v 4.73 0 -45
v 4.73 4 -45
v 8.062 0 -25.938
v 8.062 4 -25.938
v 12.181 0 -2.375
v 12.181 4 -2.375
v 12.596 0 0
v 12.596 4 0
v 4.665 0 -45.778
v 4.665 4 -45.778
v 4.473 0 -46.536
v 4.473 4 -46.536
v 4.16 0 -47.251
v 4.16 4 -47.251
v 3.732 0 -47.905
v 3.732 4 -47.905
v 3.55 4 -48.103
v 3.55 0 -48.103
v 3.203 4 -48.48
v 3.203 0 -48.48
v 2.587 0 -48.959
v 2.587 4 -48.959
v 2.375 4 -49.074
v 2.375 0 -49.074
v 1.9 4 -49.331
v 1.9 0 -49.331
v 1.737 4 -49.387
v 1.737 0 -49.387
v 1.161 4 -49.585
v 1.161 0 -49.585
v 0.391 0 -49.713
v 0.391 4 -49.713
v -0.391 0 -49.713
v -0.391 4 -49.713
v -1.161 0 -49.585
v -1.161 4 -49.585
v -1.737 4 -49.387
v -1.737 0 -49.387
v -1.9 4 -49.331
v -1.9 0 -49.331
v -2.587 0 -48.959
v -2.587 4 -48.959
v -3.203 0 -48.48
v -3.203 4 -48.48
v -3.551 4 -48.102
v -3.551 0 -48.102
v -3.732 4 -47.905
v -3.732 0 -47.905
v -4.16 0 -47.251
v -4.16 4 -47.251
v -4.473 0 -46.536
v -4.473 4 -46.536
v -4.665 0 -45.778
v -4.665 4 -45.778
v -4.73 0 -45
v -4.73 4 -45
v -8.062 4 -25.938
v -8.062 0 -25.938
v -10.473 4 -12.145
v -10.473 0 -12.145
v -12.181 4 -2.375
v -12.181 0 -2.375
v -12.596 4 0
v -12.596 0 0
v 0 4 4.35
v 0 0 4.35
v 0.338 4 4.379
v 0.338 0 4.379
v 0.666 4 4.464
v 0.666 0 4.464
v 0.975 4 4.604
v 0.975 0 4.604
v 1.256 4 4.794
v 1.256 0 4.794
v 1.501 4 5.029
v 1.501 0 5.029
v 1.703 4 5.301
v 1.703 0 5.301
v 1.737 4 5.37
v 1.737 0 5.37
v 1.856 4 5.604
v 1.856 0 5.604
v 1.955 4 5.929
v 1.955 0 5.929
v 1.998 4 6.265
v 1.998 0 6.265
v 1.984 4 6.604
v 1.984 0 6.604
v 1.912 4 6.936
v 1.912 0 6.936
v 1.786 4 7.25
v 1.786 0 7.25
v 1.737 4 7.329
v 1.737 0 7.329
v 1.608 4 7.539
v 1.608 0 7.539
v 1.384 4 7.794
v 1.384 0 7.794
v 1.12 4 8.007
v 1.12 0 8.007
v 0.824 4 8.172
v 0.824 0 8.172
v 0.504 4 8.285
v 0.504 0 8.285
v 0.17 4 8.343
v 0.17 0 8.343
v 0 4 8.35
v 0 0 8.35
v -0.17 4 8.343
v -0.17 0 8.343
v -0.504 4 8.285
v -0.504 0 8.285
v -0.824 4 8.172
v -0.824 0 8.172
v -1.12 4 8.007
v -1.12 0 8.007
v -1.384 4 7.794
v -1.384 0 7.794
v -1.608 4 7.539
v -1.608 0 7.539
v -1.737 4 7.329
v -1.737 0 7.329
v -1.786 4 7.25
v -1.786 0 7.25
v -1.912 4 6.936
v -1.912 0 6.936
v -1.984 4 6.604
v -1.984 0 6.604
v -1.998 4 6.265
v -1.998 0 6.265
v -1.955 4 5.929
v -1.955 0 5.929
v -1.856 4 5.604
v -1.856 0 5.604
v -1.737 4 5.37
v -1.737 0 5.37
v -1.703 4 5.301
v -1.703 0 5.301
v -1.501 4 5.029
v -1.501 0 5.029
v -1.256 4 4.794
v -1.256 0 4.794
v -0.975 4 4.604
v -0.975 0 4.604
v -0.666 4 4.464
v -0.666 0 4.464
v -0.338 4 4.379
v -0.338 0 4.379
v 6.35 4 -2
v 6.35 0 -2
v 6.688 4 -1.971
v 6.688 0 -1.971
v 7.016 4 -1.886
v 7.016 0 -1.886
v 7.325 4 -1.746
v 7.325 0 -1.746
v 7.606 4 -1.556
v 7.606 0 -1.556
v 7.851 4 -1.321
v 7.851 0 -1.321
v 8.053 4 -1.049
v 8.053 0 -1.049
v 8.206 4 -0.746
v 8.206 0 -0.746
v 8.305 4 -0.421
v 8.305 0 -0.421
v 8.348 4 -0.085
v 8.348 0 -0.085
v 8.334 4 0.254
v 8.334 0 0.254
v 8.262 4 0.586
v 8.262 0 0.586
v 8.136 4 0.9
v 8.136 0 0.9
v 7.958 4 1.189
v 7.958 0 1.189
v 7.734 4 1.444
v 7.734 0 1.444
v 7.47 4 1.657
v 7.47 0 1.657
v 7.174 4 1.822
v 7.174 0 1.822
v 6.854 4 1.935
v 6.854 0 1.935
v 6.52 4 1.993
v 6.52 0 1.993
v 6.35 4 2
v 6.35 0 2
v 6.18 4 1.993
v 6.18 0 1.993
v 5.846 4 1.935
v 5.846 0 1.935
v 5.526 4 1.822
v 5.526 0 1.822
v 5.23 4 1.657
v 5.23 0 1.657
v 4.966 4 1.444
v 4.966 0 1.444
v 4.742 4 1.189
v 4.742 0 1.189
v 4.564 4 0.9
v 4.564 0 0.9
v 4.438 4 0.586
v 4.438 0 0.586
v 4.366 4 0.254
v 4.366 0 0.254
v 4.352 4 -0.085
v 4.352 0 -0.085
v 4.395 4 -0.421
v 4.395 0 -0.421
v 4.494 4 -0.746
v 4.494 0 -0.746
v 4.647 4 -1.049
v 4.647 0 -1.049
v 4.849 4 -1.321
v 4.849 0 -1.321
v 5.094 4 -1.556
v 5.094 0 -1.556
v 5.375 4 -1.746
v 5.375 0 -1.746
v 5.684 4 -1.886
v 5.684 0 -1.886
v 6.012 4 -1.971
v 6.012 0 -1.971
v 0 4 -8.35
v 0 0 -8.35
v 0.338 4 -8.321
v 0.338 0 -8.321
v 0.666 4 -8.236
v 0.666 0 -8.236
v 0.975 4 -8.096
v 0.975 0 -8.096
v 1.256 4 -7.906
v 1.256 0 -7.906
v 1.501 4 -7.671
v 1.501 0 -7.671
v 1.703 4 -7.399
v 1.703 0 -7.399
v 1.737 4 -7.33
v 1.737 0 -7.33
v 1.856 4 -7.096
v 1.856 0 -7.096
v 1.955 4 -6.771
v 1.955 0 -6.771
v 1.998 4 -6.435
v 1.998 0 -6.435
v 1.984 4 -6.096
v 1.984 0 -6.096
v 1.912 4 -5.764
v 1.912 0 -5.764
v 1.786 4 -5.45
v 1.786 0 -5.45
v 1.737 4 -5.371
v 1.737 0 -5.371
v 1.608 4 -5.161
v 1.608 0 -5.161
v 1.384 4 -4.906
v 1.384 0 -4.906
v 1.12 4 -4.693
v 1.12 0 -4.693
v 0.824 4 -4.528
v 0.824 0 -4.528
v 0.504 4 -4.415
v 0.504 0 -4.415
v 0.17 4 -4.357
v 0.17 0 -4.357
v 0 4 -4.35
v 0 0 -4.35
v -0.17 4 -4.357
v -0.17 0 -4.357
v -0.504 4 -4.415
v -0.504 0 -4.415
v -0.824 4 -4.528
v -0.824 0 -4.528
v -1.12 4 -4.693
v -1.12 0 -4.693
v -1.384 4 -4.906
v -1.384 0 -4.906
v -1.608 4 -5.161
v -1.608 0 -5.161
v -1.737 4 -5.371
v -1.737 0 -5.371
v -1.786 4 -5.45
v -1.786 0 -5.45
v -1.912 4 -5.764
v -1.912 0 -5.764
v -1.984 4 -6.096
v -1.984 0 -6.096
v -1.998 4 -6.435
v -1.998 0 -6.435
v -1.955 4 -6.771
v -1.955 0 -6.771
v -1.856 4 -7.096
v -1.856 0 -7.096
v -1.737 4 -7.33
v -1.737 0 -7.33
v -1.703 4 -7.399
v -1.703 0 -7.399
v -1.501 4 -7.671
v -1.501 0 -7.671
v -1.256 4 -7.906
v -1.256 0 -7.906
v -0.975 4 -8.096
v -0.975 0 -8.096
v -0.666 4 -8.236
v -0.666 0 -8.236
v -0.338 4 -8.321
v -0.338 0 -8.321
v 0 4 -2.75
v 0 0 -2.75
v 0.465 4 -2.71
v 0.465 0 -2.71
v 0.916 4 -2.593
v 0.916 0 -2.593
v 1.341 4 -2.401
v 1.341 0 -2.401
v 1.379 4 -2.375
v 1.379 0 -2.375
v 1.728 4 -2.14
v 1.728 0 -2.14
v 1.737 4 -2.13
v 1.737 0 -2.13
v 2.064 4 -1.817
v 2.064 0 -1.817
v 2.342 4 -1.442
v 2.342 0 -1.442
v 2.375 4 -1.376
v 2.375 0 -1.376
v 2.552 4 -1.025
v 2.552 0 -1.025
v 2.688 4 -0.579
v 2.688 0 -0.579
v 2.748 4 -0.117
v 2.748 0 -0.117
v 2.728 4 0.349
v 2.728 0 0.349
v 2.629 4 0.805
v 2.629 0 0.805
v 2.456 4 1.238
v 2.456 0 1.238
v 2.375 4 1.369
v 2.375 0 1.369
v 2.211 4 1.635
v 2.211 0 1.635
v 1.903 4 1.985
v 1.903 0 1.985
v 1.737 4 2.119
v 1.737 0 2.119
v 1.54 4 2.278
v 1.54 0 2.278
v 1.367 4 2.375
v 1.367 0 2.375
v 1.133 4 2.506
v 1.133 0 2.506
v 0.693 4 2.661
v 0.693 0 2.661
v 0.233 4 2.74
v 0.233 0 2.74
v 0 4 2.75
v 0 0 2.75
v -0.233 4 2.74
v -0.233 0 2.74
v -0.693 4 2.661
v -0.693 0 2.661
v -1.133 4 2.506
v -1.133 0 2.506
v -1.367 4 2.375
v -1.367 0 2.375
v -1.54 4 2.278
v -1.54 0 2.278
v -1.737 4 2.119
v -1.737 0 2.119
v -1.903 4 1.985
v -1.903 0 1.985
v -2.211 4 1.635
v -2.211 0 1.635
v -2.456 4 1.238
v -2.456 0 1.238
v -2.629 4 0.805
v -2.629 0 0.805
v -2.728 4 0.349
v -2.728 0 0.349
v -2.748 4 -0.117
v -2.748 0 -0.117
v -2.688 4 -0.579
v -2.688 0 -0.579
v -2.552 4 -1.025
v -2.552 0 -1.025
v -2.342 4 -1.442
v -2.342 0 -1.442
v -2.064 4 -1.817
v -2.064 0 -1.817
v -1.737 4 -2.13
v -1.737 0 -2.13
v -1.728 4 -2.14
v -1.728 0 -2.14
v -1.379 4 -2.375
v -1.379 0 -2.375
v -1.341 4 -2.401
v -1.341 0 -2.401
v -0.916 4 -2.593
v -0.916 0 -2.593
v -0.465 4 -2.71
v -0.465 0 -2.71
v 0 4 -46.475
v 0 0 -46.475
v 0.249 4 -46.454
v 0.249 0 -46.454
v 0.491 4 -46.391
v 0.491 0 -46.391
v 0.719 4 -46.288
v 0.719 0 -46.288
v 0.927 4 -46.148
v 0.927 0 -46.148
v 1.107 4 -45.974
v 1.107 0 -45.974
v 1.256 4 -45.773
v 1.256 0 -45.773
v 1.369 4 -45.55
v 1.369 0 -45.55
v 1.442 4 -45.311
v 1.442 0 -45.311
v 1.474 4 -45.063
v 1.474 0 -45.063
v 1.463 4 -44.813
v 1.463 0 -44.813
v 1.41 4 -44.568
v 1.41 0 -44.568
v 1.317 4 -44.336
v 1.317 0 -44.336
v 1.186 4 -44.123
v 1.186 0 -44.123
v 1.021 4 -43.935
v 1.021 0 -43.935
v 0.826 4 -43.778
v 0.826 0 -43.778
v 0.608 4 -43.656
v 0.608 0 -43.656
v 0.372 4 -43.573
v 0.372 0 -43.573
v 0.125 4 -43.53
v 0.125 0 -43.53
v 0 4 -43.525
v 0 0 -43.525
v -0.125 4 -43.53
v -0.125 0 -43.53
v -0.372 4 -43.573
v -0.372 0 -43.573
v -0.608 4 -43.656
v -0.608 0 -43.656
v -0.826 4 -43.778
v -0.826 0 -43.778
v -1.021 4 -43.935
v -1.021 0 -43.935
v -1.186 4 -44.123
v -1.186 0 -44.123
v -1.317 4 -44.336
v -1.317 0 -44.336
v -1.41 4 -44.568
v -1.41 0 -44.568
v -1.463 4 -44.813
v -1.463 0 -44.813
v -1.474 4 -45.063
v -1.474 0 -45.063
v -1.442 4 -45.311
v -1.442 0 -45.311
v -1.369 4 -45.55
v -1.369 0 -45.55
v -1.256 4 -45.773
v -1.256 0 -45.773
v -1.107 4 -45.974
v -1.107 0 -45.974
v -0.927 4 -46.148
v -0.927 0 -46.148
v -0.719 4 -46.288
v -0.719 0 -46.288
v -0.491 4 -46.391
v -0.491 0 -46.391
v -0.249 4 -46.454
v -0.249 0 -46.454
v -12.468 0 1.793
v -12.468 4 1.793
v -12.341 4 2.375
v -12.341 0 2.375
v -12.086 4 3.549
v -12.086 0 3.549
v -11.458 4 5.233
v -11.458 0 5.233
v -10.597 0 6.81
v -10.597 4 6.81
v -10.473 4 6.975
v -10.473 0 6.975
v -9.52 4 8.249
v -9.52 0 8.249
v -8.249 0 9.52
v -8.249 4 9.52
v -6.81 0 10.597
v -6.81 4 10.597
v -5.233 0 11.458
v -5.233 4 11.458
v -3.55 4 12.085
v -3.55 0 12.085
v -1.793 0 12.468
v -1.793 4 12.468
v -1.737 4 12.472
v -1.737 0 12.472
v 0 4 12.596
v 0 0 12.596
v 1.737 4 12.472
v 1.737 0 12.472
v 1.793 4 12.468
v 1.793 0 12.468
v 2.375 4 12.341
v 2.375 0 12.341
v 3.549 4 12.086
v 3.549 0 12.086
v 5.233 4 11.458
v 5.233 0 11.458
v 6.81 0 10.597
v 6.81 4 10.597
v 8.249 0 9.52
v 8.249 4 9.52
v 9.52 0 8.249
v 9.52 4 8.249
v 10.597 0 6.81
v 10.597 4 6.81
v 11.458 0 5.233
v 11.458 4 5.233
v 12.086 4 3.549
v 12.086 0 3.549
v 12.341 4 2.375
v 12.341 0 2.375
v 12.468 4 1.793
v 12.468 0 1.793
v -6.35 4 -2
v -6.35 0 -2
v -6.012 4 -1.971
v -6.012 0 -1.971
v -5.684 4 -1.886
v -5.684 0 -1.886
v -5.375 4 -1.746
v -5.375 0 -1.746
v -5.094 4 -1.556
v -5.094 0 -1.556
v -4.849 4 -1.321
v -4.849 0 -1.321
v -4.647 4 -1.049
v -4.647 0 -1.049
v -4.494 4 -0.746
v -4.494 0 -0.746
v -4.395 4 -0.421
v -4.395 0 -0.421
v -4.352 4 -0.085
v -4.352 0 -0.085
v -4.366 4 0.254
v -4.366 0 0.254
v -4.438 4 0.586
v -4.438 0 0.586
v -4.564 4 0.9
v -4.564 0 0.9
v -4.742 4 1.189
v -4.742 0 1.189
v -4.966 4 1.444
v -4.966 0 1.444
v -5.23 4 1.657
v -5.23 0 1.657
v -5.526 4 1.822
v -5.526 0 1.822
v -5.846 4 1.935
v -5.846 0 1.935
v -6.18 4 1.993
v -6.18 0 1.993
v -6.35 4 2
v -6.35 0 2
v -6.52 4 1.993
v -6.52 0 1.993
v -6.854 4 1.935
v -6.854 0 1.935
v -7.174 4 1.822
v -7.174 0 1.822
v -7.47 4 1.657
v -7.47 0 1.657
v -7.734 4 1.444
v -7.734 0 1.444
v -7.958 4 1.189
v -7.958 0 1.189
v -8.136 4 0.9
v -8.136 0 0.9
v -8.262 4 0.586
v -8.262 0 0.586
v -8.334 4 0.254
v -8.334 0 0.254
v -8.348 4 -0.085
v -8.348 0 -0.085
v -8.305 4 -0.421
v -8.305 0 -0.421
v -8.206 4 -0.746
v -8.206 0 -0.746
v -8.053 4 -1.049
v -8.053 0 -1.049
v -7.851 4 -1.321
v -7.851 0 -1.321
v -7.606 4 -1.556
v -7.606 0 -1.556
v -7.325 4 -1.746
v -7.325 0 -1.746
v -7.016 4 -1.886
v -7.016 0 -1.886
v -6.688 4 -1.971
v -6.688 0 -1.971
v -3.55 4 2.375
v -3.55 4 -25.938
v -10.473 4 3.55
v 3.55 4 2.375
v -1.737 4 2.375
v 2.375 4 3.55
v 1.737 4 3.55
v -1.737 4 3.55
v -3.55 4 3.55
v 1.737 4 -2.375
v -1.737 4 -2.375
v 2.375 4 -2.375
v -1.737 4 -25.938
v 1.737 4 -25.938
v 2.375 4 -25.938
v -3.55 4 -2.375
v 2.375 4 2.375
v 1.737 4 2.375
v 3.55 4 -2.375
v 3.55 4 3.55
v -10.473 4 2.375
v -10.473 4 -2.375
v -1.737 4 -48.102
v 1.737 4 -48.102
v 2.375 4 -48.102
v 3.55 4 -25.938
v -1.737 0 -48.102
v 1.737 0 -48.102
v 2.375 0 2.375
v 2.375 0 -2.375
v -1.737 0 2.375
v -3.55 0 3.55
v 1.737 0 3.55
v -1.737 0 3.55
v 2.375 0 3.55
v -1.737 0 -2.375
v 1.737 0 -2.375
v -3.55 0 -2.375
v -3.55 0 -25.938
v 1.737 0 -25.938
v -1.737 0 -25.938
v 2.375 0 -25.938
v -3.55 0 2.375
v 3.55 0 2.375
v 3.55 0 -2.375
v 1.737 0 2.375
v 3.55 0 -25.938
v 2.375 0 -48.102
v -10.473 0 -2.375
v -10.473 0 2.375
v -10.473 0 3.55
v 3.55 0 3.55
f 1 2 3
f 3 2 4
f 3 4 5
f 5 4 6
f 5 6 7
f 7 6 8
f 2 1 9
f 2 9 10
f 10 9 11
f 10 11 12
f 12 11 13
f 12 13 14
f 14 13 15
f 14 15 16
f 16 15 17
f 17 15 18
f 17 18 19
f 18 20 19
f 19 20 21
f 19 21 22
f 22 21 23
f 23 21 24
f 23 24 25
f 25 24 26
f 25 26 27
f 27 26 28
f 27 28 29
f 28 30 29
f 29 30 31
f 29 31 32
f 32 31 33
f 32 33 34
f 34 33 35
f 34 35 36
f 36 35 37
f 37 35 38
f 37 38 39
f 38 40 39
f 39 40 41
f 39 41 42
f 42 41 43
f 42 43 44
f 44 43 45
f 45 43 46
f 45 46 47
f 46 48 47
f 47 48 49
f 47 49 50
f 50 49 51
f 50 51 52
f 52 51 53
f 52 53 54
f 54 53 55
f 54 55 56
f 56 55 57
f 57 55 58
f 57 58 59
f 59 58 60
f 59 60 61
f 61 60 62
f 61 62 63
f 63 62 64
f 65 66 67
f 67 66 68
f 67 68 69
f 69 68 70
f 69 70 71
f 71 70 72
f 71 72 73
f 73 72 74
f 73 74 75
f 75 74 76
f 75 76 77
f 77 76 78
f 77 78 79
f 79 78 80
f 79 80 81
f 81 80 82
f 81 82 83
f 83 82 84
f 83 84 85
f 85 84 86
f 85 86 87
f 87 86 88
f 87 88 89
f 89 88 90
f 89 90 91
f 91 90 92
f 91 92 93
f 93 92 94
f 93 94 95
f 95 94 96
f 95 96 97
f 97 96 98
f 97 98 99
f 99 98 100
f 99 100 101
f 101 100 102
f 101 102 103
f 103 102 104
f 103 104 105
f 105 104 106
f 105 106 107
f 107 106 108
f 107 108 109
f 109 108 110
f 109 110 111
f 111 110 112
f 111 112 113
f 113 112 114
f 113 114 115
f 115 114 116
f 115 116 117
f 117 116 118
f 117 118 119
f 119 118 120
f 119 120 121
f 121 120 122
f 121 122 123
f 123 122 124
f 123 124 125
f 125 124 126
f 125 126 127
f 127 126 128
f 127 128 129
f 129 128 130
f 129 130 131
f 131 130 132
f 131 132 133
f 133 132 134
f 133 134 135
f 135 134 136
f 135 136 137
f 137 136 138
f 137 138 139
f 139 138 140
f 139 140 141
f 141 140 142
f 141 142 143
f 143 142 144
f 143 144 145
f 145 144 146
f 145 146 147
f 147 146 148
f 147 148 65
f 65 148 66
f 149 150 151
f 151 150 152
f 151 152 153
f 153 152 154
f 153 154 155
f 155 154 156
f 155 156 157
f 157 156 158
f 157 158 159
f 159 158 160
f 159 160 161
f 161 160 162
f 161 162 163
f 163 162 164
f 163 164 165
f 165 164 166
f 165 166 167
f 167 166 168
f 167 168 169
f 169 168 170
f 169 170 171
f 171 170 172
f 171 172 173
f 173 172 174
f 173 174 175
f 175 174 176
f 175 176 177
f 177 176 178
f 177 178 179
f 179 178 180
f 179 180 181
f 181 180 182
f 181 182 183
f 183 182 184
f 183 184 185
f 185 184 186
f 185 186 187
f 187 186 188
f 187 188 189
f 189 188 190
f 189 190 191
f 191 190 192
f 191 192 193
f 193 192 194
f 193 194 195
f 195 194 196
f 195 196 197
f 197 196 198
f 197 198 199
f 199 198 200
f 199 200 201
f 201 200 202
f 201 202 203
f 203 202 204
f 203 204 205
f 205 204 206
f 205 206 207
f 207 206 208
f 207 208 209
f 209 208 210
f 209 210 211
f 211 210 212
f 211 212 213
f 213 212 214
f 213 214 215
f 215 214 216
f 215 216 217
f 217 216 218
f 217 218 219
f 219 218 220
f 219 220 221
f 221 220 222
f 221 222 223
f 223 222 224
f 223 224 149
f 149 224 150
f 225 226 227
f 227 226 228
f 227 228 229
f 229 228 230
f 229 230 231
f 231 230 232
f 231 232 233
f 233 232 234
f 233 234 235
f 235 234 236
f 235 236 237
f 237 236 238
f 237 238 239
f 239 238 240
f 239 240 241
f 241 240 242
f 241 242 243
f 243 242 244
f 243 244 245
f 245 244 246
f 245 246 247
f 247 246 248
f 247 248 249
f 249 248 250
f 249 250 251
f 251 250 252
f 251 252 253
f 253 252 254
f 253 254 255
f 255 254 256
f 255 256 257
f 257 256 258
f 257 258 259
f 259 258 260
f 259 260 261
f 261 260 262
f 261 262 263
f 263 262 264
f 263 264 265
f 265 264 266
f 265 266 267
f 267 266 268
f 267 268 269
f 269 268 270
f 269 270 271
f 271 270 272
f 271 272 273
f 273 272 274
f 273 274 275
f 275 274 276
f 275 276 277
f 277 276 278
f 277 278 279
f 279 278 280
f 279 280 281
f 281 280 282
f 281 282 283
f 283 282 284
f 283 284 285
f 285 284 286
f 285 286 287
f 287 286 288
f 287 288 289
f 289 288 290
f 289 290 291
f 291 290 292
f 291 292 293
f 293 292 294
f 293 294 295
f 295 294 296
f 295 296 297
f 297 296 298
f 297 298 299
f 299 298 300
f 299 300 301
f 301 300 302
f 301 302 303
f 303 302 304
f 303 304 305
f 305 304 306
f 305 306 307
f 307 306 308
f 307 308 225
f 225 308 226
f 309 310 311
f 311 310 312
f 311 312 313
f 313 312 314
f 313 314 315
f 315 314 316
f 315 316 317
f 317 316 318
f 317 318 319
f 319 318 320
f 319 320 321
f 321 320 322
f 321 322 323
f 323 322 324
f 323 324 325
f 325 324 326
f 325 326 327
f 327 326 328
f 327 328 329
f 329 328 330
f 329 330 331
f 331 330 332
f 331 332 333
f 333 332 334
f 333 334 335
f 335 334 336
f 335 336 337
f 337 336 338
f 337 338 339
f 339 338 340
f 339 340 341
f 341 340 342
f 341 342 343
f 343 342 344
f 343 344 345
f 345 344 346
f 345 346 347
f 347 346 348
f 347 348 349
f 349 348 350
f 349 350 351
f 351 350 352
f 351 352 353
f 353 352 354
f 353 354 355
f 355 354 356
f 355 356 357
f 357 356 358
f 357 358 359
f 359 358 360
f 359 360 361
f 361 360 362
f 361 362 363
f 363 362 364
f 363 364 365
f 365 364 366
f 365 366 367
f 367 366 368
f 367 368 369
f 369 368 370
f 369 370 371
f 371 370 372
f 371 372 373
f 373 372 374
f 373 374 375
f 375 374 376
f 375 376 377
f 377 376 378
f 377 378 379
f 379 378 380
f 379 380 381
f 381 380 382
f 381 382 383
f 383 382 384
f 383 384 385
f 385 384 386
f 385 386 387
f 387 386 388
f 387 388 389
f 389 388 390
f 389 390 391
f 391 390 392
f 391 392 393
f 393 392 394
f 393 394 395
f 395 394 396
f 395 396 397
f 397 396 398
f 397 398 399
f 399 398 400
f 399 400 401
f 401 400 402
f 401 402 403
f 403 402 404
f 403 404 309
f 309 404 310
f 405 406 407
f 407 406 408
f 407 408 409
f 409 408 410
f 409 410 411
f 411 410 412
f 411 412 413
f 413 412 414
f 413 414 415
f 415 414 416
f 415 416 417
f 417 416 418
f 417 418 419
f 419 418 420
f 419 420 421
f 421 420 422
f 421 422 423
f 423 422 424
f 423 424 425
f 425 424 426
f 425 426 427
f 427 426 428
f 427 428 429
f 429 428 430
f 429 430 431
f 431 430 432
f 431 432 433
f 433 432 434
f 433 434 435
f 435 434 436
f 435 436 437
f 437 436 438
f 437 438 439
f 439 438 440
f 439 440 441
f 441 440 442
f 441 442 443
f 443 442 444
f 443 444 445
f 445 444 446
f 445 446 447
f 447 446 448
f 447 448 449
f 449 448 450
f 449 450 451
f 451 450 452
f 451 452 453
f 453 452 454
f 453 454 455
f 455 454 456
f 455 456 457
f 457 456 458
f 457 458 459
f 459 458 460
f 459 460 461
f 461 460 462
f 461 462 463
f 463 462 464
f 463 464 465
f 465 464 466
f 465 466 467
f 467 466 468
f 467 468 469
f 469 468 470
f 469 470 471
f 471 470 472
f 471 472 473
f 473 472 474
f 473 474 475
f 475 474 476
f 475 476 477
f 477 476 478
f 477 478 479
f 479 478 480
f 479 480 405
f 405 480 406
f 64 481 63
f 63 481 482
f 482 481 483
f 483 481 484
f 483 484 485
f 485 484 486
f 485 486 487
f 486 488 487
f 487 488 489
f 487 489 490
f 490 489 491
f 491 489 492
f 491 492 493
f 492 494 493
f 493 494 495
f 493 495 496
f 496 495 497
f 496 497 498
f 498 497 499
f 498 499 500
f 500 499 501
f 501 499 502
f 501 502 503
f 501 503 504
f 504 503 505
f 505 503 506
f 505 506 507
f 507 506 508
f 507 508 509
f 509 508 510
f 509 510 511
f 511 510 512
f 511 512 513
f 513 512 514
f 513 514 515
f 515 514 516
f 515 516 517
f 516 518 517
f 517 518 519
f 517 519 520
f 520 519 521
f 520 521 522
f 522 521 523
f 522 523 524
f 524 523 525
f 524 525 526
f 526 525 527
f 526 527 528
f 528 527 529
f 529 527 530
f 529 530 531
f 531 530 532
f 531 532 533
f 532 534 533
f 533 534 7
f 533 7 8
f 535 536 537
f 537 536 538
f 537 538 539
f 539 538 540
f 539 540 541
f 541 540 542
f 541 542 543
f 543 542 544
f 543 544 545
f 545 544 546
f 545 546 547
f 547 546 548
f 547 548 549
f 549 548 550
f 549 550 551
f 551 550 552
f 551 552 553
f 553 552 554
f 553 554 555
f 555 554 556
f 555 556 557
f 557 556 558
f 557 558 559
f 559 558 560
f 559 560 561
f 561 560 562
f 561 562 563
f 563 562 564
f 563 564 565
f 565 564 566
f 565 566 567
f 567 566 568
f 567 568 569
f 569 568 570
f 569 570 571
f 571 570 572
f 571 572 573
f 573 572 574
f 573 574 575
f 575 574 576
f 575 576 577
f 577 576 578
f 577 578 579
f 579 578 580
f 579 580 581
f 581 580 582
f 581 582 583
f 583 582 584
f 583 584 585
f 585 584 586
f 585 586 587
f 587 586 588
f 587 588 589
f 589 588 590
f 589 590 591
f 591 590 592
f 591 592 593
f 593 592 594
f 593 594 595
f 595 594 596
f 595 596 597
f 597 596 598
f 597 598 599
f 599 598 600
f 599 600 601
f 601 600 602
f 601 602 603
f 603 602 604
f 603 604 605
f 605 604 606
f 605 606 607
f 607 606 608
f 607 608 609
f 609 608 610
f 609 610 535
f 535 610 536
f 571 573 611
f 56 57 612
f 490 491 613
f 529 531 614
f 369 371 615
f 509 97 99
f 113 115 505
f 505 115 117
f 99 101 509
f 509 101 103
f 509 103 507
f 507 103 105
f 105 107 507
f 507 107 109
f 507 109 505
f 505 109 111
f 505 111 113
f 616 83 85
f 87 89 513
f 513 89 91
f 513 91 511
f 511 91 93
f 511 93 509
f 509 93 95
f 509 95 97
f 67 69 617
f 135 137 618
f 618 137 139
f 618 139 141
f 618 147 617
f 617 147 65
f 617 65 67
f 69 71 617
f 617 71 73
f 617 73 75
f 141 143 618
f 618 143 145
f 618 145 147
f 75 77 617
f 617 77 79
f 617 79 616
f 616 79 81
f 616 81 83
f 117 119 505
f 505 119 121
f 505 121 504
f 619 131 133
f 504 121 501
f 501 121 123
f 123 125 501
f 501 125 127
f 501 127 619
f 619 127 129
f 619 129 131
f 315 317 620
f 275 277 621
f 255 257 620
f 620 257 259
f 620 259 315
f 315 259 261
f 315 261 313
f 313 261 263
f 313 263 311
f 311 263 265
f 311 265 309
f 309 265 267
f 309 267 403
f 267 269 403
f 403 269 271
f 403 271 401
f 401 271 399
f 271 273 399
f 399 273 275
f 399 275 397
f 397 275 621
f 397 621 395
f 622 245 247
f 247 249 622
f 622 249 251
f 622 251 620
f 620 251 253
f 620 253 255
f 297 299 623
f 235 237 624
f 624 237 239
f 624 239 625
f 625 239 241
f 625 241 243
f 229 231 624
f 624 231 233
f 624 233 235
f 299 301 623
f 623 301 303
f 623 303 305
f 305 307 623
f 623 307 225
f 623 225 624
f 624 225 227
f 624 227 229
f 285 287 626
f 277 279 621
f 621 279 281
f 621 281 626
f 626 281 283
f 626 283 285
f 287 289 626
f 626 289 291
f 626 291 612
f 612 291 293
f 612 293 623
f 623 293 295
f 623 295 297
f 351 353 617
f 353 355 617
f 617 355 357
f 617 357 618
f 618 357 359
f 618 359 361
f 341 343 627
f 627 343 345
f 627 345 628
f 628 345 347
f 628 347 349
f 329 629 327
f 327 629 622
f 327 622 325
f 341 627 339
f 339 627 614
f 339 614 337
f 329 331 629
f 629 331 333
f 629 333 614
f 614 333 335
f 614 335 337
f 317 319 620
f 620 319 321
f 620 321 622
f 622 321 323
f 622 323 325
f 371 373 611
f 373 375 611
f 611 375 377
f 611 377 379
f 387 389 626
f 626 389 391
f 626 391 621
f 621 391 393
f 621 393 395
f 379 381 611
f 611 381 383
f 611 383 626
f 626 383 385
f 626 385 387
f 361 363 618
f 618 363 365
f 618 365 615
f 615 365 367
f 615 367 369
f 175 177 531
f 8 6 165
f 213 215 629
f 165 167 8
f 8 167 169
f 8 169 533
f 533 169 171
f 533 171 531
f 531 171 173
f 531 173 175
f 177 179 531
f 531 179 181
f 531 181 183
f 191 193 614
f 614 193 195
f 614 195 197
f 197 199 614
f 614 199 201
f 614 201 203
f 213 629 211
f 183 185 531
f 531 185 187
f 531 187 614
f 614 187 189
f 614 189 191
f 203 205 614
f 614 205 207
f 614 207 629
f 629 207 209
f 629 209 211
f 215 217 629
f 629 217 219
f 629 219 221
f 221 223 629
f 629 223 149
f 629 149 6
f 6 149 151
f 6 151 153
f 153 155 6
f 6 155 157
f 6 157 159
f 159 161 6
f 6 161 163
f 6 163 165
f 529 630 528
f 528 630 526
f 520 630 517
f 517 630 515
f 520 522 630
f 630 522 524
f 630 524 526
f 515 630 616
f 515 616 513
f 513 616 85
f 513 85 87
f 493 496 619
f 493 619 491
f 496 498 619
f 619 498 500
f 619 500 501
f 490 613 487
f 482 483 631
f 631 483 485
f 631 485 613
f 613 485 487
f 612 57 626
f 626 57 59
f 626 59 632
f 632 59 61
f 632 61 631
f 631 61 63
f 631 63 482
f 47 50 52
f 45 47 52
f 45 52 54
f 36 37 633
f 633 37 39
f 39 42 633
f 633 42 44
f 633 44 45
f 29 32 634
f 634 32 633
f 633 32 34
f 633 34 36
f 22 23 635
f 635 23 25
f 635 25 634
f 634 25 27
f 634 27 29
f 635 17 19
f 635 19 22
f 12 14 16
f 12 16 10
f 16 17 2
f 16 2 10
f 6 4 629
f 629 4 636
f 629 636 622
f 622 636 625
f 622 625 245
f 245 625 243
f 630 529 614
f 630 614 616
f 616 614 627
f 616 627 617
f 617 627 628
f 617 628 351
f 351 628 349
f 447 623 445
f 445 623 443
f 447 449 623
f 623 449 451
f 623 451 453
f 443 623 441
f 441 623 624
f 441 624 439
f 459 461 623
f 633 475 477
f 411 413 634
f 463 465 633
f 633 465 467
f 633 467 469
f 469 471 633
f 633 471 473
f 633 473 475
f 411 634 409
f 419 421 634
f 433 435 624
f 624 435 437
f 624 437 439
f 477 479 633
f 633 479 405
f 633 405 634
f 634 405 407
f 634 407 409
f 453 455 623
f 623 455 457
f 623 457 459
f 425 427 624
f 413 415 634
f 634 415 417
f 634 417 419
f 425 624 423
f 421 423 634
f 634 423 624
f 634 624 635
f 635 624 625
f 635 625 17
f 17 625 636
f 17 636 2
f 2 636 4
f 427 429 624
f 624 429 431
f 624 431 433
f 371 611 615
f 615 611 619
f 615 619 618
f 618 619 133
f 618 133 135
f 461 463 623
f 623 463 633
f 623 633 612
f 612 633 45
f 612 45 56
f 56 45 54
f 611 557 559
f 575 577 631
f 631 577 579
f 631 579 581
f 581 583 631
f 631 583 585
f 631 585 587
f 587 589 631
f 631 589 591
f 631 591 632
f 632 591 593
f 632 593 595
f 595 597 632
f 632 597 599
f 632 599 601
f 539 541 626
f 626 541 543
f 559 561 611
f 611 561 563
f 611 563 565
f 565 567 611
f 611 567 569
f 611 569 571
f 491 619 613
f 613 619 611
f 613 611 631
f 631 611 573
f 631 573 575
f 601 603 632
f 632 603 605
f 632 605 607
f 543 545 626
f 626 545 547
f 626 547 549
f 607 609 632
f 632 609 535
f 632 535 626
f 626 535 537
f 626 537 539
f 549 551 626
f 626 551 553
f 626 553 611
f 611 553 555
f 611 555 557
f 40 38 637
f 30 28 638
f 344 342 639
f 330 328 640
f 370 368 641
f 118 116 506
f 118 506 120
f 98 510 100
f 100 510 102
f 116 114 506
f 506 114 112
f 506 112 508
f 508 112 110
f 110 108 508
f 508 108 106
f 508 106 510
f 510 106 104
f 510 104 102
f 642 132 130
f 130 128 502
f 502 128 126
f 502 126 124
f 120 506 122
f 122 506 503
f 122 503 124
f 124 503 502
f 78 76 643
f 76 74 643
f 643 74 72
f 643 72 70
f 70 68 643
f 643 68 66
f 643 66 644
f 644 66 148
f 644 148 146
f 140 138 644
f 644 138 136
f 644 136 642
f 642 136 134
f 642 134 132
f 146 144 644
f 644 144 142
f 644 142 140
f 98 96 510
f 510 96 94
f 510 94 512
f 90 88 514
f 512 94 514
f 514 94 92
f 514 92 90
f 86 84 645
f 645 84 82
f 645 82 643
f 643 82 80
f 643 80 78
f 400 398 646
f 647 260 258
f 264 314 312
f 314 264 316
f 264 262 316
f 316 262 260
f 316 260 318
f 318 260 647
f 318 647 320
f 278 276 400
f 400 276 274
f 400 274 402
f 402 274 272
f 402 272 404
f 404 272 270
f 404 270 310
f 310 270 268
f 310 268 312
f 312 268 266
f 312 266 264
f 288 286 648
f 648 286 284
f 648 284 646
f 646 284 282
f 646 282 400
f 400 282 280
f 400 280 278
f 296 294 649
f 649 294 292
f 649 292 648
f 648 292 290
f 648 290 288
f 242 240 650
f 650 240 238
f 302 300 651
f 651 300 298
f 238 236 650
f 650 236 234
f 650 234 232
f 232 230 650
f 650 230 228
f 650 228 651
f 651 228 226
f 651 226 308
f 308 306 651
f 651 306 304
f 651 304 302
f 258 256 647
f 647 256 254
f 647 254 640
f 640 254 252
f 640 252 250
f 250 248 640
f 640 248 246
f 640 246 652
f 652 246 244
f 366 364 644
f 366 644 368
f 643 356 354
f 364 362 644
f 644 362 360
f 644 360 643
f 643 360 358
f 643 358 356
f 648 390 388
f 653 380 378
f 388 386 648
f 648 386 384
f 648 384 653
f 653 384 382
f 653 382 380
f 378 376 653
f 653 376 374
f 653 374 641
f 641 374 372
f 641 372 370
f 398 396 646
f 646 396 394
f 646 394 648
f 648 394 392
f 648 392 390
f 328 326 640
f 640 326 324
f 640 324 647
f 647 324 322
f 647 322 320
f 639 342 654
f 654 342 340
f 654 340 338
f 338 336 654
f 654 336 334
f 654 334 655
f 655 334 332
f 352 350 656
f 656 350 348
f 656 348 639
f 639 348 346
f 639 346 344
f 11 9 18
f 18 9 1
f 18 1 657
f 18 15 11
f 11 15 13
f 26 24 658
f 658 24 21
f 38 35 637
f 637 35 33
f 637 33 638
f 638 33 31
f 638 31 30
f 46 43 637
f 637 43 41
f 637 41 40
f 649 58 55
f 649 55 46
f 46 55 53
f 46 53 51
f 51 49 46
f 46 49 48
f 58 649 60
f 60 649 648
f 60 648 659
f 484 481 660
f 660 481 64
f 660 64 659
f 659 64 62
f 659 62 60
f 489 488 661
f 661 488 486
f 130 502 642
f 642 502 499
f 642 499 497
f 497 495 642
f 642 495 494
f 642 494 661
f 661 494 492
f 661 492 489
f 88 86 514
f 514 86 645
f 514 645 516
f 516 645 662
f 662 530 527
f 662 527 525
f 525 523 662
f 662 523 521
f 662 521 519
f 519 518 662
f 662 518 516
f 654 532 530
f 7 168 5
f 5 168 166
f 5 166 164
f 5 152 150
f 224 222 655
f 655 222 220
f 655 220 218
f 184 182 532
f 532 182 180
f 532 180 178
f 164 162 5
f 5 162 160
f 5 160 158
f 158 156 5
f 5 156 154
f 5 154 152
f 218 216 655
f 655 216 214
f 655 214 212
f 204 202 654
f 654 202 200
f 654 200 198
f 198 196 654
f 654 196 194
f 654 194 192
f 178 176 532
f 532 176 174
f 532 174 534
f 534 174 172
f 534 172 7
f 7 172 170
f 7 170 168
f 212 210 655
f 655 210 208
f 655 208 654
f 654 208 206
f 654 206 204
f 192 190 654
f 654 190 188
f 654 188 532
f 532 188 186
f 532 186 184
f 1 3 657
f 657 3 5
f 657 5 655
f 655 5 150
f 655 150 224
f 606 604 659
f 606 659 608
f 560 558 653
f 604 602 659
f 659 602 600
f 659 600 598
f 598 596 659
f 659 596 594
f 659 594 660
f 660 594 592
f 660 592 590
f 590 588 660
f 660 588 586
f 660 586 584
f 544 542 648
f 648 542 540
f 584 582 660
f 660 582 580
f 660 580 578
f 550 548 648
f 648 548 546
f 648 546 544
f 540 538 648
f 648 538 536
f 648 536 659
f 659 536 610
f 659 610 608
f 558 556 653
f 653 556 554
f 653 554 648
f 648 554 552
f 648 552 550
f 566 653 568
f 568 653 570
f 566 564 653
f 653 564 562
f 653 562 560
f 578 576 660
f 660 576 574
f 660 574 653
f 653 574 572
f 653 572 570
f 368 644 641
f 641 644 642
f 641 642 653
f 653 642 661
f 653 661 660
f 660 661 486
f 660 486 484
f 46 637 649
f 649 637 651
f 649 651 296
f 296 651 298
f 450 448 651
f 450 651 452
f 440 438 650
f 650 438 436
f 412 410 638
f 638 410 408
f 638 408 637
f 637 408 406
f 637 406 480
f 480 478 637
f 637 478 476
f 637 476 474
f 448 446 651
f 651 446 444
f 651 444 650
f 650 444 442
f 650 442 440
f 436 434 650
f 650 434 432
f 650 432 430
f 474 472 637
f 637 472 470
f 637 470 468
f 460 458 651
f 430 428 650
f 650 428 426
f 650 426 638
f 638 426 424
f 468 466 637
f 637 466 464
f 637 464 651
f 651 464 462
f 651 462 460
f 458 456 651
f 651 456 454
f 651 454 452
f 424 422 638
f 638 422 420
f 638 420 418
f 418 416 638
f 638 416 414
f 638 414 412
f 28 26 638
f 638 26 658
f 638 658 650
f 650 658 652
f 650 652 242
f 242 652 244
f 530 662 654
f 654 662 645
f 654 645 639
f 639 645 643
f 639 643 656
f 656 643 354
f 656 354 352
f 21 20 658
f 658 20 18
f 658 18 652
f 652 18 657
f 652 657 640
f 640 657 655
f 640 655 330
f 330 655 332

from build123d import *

# Parameters (mm, degrees)
SKETCH1_R           = 4.729578235
SKETCH1_R_2         = 1.475
SKETCH1_R_3         = 2
SKETCH1_R_4         = 2.75
BOSS_EXTRUDE1_DEPTH = 4


with BuildPart() as part:
    # Sketch1 → Boss-Extrude1 (new body)
    # profile 1 of 3: a face of its own
    with BuildSketch(Plane(origin=(0, 0, 0), x_dir=(1, 0, 0), z_dir=(0, 1, 0))):
        with Locations((0, 45)):
            Circle(SKETCH1_R)
        with Locations(Location((0, 45, 0), (0, 0, 270))):
            Circle(SKETCH1_R_2, mode=Mode.SUBTRACT)
    # profile 2 of 3: a face of its own
    with BuildSketch(Plane(origin=(0, 0, 0), x_dir=(1, 0, 0), z_dir=(0, 1, 0))):
        with BuildLine():
            Line((11.849111677, 4.273338853), (4.729578235, 45))
            ThreePointArc((4.729578235, 45), (0, 40.270421765), (-4.729578235, 45))
            Line((-4.729578235, 45), (-11.849111677, 4.273338853))
            ThreePointArc((-11.849111677, 4.273338853), (0, 12.596145144), (11.849111677, 4.273338853))
        make_face()
    # profile 3 of 3: a face of its own
    with BuildSketch(Plane(origin=(0, 0, 0), x_dir=(1, 0, 0), z_dir=(0, 1, 0))):
        with BuildLine():
            Line((12.596145144, 0), (11.849111677, 4.273338853))
            ThreePointArc((11.849111677, 4.273338853), (0, 12.596145144), (-11.849111677, 4.273338853))
            Line((-11.849111677, 4.273338853), (-12.596145144, 0))
            ThreePointArc((-12.596145144, 0), (0, -12.596145144), (12.596145144, 0))
        make_face()
        with Locations(Location((-6.35, 0, 0), (0, 0, 270))):
            Circle(SKETCH1_R_3, mode=Mode.SUBTRACT)
        with Locations(Location((0, -6.35, 0), (0, 0, 270))):
            Circle(SKETCH1_R_3, mode=Mode.SUBTRACT)
        with Locations(Location((0, 0, 0), (0, 0, 270))):
            Circle(SKETCH1_R_4, mode=Mode.SUBTRACT)
        with Locations(Location((6.35, 0, 0), (0, 0, 270))):
            Circle(SKETCH1_R_3, mode=Mode.SUBTRACT)
        with Locations(Location((0, 6.35, 0), (0, 0, 270))):
            Circle(SKETCH1_R_3, mode=Mode.SUBTRACT)
    extrude(amount=BOSS_EXTRUDE1_DEPTH)


solid = part.part
